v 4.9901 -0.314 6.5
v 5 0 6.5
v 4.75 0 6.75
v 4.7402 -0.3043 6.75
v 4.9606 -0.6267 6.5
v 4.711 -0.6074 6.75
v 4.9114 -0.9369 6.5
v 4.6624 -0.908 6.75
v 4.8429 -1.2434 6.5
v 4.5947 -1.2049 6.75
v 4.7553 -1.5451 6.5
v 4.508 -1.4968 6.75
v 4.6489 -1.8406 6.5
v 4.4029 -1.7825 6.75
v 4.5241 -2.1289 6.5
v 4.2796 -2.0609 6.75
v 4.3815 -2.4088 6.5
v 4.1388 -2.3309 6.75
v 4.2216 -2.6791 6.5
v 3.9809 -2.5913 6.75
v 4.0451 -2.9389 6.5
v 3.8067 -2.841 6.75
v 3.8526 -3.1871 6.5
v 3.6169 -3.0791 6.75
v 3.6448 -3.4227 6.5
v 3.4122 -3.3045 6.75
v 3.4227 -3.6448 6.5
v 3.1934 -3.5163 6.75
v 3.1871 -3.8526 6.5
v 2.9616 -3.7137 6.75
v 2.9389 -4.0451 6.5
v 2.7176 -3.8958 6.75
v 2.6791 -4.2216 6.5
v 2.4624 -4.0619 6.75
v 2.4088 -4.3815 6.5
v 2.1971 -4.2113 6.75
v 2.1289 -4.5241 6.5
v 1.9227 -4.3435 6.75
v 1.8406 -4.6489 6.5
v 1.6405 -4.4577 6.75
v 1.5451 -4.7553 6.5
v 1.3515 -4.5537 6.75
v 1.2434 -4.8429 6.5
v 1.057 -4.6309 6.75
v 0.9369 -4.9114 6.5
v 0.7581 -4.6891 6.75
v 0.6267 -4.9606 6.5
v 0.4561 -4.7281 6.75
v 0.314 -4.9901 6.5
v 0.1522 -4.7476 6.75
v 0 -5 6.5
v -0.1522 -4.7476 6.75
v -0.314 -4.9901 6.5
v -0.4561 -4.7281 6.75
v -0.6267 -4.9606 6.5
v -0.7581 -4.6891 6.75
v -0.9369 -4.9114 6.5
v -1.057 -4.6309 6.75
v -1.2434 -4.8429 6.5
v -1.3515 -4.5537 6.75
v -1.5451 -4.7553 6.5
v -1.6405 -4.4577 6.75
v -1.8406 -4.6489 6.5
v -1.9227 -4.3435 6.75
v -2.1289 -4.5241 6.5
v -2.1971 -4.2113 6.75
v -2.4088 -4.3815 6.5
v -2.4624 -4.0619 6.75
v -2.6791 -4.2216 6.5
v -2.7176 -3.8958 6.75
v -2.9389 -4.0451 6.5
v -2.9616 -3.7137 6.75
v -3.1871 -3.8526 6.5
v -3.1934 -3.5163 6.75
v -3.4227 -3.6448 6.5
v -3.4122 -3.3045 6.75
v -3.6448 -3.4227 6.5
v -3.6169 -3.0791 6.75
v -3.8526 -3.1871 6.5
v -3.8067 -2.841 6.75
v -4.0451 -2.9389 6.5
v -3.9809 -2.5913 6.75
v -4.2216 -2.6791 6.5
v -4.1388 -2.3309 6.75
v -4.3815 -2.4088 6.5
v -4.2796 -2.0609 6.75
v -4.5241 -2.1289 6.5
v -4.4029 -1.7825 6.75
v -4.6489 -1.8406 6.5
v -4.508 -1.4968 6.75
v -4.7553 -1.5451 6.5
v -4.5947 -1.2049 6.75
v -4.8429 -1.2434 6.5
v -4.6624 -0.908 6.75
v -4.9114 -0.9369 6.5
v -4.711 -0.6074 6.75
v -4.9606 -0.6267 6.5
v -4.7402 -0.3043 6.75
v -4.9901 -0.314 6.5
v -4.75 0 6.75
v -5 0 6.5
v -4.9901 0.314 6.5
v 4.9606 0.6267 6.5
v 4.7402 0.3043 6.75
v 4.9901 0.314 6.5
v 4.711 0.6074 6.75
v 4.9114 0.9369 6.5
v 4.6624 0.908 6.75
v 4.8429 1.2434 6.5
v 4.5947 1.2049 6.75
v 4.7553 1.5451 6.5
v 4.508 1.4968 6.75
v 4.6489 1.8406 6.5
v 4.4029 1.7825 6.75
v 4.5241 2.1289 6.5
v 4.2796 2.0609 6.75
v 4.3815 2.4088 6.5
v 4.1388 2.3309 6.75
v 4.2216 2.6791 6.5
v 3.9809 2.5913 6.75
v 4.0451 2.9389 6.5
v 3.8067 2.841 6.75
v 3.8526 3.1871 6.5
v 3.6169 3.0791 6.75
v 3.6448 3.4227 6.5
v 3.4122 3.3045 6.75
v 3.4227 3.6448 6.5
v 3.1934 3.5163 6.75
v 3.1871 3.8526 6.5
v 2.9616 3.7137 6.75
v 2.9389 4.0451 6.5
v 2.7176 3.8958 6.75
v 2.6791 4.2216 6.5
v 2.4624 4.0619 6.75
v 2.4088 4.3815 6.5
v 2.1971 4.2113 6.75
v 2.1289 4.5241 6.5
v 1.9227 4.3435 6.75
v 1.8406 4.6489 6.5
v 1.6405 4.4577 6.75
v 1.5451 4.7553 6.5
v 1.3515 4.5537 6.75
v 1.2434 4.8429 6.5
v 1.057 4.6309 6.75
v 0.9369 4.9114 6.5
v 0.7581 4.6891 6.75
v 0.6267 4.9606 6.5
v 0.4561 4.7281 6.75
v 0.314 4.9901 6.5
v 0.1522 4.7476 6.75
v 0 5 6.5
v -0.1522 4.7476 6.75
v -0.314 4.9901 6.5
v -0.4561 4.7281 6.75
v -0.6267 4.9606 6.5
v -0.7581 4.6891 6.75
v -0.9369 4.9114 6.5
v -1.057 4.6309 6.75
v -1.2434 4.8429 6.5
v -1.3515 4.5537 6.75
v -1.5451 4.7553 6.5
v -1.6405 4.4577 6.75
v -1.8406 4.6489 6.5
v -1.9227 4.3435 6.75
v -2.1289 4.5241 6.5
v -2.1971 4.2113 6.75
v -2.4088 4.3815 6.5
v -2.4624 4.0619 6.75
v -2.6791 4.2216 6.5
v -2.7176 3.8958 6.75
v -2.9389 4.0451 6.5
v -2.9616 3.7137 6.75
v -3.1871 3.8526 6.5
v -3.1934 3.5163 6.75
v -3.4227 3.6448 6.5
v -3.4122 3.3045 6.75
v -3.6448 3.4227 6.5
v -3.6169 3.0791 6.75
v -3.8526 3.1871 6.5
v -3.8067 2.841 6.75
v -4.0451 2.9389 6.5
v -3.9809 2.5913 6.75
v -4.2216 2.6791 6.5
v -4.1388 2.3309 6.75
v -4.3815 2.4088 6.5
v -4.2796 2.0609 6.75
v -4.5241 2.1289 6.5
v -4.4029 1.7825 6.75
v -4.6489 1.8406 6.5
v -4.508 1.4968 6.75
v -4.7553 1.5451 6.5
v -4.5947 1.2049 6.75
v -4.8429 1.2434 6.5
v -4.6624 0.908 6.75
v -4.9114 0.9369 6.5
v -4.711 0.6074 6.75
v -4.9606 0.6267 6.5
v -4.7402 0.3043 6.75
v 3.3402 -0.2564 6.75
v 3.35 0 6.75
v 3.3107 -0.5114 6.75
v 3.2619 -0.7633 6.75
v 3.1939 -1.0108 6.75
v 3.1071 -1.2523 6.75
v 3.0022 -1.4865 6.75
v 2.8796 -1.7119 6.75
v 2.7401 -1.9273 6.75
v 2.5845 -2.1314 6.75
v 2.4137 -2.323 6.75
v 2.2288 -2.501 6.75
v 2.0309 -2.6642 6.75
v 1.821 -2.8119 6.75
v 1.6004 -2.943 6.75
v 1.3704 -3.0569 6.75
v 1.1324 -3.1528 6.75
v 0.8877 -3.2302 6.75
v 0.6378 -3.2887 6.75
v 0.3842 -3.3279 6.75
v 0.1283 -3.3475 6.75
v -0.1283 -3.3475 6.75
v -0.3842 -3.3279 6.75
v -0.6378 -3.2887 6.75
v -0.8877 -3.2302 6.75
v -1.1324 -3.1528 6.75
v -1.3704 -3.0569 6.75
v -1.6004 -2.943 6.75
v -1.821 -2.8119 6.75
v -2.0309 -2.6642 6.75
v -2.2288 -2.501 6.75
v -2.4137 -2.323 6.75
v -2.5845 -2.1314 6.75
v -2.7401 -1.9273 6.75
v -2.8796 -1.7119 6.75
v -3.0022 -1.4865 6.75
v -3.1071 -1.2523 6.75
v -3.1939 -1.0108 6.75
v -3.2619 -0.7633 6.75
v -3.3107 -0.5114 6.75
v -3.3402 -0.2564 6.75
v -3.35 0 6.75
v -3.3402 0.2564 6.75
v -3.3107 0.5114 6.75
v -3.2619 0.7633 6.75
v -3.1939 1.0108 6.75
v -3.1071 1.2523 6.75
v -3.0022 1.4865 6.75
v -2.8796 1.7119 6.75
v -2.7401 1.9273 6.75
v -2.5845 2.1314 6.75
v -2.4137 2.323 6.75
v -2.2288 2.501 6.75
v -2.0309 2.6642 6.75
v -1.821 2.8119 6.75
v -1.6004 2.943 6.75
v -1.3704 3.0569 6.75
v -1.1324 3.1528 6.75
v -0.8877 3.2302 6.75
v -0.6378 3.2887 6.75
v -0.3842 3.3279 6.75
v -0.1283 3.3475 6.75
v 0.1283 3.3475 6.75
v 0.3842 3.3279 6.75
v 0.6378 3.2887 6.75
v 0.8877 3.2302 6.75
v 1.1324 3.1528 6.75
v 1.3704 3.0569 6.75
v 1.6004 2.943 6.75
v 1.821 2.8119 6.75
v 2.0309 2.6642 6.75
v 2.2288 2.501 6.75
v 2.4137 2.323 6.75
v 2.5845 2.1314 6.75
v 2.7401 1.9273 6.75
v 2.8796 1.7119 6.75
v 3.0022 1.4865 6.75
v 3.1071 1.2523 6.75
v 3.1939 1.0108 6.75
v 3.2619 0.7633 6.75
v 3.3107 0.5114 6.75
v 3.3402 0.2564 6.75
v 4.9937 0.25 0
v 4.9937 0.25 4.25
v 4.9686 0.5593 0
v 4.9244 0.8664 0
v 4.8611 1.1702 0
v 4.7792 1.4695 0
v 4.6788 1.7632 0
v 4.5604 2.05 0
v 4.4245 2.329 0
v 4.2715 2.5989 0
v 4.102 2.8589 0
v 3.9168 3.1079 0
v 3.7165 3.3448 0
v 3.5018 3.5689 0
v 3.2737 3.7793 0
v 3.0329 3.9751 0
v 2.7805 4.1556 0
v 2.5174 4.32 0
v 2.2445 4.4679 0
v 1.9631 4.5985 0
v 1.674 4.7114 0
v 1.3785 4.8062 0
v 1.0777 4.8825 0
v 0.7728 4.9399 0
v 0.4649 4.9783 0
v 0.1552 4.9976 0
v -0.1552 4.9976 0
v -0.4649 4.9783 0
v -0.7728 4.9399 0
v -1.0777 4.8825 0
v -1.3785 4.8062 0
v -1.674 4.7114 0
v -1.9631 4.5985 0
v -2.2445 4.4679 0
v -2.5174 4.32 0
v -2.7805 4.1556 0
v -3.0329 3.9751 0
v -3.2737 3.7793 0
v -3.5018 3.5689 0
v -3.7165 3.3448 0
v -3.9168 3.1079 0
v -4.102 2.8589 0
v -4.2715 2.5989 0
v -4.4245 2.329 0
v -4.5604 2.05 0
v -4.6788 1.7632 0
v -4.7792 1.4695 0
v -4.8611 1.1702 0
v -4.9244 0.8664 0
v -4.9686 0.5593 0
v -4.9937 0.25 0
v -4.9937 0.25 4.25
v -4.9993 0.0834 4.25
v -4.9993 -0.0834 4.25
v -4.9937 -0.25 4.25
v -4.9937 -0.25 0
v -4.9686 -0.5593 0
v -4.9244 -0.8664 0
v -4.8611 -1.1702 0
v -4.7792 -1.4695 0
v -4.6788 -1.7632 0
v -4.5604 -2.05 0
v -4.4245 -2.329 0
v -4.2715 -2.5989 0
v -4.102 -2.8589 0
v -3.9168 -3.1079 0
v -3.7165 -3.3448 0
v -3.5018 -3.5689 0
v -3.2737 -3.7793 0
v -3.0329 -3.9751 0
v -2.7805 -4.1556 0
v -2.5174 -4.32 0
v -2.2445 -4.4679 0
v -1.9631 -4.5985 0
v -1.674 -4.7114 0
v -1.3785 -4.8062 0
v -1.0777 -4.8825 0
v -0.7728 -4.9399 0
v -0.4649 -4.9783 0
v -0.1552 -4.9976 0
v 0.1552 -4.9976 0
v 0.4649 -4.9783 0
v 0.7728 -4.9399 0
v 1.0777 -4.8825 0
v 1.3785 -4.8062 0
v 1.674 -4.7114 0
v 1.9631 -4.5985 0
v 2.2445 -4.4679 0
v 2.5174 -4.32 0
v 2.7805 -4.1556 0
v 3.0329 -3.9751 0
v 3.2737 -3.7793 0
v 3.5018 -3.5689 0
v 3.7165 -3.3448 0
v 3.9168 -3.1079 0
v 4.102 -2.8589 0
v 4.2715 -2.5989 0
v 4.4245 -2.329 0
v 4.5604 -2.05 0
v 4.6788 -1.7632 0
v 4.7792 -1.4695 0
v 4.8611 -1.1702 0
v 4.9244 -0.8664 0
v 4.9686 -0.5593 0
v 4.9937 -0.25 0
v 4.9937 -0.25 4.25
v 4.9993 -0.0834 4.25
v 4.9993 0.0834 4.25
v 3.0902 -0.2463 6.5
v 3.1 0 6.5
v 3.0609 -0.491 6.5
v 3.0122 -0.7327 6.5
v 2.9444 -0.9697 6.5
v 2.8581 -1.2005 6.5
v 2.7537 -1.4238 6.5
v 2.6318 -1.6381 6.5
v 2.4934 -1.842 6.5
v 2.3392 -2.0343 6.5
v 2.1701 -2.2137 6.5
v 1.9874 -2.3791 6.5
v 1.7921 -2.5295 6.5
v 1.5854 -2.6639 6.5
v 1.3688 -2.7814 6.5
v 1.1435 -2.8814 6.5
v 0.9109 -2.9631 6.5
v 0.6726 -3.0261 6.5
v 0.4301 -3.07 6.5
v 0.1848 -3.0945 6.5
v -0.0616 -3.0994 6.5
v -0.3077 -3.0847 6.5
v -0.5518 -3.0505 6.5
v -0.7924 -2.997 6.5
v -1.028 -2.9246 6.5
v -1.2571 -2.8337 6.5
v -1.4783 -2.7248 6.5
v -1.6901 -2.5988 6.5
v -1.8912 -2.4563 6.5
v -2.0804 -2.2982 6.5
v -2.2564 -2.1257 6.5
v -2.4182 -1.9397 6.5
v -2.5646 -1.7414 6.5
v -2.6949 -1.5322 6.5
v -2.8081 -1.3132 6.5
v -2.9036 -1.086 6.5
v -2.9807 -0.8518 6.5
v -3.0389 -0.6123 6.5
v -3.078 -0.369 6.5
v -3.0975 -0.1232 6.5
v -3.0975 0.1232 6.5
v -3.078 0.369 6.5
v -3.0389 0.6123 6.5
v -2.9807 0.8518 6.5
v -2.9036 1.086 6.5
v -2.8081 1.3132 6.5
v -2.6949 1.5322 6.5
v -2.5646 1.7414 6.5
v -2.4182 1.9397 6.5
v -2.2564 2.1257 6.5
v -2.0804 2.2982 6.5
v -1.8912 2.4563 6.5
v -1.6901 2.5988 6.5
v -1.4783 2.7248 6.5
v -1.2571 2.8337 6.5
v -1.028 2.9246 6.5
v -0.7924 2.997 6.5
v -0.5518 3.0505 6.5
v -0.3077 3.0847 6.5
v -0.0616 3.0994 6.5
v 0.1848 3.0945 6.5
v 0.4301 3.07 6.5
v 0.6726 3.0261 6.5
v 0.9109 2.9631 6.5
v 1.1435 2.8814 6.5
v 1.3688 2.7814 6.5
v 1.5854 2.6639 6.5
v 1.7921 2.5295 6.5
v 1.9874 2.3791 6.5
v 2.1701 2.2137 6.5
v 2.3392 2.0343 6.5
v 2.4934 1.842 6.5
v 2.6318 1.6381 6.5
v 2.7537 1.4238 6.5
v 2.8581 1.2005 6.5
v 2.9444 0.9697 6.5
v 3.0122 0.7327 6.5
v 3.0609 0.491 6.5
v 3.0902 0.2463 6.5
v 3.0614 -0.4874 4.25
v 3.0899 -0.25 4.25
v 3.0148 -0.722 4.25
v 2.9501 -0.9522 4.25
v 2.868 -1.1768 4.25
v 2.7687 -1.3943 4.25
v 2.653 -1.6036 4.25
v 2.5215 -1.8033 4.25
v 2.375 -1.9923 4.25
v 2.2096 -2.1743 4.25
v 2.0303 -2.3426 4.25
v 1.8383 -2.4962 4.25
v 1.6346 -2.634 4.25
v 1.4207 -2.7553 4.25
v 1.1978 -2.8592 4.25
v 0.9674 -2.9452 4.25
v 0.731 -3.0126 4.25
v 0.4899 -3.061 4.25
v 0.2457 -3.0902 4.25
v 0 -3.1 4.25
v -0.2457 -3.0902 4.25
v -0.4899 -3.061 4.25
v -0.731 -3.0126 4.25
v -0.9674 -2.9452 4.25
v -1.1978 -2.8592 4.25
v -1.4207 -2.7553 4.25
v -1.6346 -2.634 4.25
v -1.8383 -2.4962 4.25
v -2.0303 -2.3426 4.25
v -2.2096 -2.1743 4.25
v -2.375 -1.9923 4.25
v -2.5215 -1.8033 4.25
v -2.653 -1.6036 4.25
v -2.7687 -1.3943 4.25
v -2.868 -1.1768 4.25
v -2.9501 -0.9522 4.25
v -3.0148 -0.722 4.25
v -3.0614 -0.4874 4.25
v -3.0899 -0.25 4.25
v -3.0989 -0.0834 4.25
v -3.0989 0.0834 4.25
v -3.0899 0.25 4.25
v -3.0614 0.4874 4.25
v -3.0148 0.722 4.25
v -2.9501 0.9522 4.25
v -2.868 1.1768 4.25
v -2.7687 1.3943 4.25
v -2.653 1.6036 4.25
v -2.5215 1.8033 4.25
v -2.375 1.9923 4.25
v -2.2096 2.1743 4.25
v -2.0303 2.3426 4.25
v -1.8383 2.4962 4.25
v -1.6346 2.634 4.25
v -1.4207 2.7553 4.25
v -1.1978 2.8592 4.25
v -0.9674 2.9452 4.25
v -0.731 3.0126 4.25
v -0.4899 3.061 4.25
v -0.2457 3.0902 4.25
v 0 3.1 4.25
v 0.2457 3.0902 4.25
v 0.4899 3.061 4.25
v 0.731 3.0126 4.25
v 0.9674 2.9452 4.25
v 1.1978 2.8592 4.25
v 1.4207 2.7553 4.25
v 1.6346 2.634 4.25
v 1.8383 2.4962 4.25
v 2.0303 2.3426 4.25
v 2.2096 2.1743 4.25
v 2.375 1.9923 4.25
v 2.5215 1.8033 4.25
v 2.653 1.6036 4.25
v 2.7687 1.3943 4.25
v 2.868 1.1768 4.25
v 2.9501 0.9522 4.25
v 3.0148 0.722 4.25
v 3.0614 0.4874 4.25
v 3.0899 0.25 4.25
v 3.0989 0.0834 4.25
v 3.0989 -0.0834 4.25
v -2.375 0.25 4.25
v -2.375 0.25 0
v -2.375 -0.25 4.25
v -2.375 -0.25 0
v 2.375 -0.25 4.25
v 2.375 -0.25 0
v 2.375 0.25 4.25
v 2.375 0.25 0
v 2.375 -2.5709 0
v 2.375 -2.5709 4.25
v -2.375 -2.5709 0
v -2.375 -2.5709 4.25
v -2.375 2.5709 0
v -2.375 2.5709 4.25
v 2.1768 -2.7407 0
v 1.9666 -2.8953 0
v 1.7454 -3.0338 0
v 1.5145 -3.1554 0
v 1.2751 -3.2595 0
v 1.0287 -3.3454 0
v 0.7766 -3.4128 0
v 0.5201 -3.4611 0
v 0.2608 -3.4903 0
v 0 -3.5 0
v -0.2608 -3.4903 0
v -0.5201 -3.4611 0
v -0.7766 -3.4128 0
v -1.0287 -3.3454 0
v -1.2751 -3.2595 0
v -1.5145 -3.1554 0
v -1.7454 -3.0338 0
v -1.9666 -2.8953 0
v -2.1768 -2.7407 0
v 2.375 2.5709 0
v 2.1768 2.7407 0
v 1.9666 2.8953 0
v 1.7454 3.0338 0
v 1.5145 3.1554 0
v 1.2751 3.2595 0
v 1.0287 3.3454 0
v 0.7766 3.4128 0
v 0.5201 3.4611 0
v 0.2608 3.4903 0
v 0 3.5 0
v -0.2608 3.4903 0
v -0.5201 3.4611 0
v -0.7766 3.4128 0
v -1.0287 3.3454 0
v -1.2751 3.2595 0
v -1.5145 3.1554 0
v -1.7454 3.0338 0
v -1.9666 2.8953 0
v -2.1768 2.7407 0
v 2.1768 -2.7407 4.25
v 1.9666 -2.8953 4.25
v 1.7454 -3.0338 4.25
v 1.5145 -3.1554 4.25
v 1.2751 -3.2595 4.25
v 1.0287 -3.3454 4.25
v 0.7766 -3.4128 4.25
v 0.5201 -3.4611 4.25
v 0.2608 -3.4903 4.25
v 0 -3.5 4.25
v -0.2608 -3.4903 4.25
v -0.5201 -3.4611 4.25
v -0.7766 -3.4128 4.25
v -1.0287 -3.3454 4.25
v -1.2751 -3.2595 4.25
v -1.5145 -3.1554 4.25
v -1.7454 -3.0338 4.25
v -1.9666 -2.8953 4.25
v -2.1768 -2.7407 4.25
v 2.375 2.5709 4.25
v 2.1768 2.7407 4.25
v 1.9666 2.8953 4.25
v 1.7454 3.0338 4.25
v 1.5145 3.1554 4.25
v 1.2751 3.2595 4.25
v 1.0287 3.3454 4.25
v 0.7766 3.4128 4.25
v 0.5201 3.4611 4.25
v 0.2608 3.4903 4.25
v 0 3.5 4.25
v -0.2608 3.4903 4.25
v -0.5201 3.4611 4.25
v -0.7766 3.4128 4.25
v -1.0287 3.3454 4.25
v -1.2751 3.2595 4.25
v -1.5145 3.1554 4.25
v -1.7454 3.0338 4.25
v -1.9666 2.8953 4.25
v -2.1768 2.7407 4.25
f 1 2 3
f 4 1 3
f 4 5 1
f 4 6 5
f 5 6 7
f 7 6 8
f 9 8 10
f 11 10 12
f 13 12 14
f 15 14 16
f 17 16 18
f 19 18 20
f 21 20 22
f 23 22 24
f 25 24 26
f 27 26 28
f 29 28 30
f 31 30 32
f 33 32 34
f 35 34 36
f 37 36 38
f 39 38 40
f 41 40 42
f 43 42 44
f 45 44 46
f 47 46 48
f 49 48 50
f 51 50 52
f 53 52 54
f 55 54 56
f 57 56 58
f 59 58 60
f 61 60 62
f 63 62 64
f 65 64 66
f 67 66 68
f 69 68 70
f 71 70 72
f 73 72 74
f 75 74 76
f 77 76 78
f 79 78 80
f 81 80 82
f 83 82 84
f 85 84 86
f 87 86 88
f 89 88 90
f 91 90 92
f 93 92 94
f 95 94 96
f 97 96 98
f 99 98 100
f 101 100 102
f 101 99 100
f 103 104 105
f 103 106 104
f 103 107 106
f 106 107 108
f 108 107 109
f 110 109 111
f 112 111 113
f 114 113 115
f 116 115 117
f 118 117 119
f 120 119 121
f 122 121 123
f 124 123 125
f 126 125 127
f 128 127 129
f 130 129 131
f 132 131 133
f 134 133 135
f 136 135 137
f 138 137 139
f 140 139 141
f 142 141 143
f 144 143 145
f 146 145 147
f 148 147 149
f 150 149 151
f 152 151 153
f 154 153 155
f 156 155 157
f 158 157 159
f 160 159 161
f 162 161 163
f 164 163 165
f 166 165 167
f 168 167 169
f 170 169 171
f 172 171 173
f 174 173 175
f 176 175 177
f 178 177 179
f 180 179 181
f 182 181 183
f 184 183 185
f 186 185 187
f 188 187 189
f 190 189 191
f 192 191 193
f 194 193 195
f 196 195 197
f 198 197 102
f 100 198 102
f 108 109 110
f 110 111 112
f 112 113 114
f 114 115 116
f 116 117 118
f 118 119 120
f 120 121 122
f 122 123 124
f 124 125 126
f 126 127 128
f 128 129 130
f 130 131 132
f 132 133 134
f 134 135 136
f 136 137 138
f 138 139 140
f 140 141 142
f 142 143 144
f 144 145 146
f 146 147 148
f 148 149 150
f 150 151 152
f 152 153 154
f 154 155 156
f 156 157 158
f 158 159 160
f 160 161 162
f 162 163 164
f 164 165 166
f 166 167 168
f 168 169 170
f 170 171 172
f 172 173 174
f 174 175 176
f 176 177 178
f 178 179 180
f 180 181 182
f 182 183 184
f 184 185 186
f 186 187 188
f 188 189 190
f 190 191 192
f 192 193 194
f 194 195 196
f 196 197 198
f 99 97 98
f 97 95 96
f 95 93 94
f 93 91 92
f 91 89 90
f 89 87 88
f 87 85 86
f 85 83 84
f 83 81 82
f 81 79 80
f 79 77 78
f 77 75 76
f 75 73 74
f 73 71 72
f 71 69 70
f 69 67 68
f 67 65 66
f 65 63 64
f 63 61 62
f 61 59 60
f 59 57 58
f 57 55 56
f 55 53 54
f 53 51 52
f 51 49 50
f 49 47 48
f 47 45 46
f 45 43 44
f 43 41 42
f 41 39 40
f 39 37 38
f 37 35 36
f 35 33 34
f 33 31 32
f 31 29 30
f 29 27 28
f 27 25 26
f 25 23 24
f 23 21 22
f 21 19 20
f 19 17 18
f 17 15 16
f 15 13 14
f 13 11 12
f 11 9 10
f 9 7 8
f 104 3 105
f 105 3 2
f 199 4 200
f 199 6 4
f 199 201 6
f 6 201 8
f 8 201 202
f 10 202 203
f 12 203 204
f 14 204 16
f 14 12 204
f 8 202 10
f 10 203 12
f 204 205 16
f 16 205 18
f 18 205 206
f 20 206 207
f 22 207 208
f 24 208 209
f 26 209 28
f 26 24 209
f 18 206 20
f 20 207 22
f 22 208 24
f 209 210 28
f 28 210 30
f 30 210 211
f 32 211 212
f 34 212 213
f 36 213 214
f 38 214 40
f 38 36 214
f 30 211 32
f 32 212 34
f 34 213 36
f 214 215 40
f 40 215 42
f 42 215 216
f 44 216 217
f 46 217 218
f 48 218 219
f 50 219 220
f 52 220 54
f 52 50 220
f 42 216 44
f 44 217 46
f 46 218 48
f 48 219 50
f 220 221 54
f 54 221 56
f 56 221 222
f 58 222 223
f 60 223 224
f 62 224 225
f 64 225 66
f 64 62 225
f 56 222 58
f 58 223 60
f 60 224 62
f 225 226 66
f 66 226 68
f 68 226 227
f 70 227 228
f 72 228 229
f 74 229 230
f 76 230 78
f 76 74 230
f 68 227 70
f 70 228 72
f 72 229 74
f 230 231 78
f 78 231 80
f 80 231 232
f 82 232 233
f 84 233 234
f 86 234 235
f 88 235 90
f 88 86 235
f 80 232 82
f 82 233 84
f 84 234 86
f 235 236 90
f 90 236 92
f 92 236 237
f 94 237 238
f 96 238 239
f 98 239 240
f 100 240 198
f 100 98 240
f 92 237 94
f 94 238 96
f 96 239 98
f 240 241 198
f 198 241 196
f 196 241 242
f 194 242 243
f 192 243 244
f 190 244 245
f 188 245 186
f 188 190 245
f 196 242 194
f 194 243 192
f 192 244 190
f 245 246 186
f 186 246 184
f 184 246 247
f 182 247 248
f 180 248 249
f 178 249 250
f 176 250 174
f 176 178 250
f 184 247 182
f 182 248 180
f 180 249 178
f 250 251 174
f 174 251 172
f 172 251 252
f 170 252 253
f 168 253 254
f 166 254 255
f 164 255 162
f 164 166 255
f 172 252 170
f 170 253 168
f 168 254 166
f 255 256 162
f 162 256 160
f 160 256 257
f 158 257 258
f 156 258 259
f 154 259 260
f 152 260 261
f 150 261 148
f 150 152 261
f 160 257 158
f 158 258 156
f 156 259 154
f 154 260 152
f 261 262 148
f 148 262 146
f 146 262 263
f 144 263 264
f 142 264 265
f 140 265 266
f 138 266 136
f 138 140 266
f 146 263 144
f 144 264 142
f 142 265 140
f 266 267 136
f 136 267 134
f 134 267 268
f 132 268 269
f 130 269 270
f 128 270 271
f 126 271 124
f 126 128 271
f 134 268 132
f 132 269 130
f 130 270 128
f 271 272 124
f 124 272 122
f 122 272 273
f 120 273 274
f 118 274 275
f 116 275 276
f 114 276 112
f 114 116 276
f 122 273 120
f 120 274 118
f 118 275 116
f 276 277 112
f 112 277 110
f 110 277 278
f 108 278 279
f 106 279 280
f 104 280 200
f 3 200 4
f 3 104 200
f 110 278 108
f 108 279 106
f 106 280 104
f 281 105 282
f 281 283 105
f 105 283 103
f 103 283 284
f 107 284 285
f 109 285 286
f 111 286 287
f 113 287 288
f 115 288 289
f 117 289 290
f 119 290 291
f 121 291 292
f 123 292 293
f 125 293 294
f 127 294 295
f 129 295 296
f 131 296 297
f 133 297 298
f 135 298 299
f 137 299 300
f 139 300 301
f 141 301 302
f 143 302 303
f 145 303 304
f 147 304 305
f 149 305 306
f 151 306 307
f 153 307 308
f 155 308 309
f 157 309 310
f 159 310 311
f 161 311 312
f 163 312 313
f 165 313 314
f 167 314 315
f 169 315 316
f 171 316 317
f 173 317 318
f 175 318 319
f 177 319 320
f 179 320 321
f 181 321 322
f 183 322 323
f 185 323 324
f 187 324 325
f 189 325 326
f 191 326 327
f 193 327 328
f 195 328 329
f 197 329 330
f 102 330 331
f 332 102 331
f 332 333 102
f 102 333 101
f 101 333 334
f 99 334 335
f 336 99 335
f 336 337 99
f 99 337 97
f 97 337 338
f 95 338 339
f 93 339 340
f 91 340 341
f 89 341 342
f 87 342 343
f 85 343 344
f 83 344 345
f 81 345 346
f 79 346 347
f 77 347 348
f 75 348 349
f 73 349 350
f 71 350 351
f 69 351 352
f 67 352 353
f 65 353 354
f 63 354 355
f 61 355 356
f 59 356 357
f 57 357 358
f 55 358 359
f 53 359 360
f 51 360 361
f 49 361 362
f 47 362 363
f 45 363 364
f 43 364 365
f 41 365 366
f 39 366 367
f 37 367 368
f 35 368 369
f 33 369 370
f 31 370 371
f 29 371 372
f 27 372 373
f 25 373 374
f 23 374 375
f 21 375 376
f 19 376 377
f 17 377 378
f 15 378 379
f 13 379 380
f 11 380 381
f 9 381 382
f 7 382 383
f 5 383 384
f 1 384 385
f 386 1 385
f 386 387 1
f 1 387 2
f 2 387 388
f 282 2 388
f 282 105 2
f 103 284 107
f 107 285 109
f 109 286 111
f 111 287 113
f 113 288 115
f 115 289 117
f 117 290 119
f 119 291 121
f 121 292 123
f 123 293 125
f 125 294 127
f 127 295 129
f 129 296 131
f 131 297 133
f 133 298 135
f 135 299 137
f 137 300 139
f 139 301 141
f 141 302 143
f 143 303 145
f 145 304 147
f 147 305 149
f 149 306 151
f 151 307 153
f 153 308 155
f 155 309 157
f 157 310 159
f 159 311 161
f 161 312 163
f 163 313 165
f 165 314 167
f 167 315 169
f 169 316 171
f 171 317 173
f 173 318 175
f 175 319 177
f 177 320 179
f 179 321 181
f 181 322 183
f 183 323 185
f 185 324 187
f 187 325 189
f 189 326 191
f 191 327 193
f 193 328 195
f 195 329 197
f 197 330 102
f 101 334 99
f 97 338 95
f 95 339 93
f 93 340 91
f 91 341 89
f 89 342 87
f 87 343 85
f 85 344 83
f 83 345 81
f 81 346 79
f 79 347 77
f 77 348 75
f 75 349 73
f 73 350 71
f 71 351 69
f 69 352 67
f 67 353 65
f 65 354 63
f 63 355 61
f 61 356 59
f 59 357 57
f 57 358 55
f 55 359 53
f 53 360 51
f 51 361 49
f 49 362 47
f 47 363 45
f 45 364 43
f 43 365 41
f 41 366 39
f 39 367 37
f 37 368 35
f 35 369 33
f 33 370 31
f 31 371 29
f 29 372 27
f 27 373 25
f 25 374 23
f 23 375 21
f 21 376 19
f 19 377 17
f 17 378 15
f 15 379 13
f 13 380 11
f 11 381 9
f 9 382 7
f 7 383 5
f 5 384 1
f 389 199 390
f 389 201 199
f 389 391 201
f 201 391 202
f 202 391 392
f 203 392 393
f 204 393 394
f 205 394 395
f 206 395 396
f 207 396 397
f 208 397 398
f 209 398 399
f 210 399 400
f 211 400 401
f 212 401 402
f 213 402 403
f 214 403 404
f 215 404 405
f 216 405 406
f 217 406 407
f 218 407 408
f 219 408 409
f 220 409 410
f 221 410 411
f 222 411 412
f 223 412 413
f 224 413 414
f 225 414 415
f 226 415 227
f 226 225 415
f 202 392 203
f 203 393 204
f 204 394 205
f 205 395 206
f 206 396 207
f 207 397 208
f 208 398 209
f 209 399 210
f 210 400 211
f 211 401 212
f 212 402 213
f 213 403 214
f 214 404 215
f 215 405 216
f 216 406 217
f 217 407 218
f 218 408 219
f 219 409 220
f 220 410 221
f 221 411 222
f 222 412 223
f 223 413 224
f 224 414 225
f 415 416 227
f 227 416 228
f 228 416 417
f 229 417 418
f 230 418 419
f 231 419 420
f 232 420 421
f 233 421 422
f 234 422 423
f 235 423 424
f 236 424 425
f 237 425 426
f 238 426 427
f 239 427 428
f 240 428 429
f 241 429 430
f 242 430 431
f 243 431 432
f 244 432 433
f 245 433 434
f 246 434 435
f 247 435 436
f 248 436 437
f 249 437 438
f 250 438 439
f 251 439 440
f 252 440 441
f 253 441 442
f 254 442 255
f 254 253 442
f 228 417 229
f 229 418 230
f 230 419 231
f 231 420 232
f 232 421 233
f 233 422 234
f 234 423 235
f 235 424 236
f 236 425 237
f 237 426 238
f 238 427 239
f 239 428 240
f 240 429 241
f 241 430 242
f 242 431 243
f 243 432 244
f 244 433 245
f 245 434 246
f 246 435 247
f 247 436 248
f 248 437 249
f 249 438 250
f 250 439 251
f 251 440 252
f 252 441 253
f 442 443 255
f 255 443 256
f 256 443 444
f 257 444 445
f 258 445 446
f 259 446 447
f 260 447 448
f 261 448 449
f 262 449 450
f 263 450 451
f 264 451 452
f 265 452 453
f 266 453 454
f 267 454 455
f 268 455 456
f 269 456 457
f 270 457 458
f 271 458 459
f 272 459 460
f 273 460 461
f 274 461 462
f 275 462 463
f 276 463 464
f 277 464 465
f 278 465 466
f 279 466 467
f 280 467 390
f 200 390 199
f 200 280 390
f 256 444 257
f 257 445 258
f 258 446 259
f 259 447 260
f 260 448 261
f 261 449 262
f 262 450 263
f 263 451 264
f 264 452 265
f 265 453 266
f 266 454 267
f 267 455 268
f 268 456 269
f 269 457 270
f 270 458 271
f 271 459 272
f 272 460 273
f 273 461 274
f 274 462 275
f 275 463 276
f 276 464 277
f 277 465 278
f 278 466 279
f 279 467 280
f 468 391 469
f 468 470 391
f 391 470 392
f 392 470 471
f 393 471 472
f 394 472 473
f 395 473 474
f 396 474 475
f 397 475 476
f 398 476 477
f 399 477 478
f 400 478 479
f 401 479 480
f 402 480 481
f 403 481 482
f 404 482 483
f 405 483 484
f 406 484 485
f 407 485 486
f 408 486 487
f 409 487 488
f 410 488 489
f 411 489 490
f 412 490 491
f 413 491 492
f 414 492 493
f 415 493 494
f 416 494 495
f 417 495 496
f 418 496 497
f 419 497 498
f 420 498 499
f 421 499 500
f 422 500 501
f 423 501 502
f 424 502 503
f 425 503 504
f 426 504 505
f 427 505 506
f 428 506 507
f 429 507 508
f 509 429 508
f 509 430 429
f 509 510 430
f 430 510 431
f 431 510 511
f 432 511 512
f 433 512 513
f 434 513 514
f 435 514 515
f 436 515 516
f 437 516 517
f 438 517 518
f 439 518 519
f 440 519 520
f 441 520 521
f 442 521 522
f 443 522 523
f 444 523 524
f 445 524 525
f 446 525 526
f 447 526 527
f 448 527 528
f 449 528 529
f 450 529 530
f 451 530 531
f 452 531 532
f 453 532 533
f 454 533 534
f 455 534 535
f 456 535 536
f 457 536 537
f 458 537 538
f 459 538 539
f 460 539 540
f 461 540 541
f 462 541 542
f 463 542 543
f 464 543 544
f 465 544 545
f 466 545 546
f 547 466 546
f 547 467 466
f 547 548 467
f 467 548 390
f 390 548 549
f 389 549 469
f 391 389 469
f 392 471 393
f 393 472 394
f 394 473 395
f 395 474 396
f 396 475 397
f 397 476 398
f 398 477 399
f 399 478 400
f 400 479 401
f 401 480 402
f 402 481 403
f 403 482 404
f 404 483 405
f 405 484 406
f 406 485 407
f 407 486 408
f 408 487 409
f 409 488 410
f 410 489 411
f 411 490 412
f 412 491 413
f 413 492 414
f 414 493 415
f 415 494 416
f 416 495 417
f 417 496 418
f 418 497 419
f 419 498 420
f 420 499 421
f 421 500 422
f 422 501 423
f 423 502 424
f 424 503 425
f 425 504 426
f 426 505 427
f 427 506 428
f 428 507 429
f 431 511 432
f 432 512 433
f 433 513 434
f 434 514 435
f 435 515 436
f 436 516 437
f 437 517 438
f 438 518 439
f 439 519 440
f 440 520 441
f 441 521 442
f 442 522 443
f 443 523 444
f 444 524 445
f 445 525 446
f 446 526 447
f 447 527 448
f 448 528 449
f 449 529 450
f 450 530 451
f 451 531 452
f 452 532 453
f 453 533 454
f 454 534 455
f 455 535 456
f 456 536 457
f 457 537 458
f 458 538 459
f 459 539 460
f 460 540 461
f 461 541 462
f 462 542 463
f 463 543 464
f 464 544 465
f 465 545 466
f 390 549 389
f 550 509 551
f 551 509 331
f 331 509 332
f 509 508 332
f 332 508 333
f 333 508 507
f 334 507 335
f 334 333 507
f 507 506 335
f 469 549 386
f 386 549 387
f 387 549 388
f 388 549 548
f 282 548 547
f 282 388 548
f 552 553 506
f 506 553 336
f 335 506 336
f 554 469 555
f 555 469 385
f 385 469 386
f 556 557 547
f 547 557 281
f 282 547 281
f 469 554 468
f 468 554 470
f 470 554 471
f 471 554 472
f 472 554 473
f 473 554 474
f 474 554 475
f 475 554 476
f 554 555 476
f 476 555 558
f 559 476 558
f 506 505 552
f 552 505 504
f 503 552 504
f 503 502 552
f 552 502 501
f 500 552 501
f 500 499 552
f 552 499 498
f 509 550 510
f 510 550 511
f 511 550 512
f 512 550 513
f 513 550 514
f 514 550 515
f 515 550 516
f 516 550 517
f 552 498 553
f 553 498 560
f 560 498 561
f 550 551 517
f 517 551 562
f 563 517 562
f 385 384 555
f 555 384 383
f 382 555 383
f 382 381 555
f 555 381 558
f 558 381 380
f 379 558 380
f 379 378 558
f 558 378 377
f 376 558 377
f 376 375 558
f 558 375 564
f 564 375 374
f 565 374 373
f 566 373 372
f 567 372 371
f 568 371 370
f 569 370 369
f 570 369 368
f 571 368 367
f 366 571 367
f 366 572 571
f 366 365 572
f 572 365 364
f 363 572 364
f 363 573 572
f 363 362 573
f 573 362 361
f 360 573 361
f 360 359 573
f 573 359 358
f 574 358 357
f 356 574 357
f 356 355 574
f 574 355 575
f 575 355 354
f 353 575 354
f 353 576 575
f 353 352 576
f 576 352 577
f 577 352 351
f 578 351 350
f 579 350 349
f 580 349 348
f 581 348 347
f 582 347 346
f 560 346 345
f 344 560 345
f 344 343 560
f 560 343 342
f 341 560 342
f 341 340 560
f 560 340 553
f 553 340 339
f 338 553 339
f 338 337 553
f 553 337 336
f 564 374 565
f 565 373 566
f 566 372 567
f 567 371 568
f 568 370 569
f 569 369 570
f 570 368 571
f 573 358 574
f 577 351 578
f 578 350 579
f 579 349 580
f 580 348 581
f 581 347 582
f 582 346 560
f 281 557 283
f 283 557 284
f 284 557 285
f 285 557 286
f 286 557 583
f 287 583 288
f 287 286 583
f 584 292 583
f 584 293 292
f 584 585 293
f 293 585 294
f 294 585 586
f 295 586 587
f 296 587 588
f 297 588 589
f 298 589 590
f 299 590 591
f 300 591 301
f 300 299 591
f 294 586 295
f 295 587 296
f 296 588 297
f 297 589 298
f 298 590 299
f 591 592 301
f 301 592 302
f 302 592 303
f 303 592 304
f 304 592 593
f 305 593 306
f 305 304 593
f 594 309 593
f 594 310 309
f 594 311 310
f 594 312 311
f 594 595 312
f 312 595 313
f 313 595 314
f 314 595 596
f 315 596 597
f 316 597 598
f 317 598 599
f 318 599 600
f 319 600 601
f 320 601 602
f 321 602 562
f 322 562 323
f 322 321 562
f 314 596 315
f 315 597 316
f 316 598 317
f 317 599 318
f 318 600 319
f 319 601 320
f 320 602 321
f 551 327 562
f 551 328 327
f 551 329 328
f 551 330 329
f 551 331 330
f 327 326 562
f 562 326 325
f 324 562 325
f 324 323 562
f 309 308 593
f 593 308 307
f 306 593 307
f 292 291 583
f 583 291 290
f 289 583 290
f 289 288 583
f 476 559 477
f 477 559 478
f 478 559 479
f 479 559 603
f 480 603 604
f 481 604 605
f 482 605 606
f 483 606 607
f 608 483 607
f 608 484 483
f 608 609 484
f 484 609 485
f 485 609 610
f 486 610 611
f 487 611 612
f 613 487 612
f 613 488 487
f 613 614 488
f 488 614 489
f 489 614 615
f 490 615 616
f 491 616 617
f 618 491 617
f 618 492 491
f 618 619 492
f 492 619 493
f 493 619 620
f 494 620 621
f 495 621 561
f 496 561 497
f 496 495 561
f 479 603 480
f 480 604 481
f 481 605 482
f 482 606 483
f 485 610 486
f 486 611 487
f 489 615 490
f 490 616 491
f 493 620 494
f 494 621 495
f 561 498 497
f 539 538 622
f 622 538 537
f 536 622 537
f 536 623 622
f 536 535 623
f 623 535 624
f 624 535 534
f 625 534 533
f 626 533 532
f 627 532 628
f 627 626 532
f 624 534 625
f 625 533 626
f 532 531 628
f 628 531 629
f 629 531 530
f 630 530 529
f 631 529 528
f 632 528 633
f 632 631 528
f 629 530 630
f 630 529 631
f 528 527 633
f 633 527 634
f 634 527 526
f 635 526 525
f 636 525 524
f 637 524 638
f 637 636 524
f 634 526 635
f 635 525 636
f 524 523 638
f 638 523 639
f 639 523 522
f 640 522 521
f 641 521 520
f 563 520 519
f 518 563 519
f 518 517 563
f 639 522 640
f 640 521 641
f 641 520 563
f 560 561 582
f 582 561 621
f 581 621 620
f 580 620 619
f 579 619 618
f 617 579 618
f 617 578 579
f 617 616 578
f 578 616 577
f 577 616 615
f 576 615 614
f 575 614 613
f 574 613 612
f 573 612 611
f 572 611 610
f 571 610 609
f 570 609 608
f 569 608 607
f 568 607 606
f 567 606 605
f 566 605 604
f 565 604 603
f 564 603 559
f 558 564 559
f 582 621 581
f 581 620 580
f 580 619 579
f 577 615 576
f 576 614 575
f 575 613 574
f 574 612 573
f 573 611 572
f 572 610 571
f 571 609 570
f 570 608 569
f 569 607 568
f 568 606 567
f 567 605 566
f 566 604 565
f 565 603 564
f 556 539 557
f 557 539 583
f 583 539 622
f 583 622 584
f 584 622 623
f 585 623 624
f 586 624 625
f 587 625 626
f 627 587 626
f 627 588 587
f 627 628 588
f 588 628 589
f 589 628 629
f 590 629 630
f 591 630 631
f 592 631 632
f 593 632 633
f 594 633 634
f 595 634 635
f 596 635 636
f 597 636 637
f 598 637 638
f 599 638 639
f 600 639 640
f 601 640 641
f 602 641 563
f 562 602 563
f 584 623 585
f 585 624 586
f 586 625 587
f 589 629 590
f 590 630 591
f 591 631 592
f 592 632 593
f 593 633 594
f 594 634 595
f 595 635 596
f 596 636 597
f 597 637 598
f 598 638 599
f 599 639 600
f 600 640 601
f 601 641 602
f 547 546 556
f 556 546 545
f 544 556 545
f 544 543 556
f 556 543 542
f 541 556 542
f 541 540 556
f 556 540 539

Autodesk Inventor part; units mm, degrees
ref_plane "YZ Plane" through (0, 0, 0) normal (1, 0, 0) x (0, 1, 0)
ref_plane "XZ Plane" through (0, 0, 0) normal (0, 1, 0) x (-1, 0, 0)
sketch "Sketch1" plane through (0, 0, 0) normal (0, 0, 1) x (1, 0, 0)
  line L0 (-2.375, 2.5709) -> (-2.375, -2.5709) projected
  arc A0 (-2.375, -2.5709) -> (2.375, -2.5709) centre (0, 0) ccw projected
  line L1 (2.375, -2.5709) -> (2.375, 2.5709) projected
  arc A1 (2.375, 2.5709) -> (-2.375, 2.5709) centre (0, 0) ccw projected
  circle A2 centre (0, 0) radius 0.875 projected
  circle A3 centre (0, 0) radius 5
  dimension "d0" = 10
ref_plane "Work Plane1" through (-2.375, -3.5, 4.25) normal (0, 0, 1) x (1, 0, 0)
extrude "Extrusion1" add sketch "Sketch1" along normal up to surface (4.25 mm away) contours A3
sketch "Sketch2" plane through (0, 0, 4.25) normal (0, 0, 1) x (1, 0, 0)
  circle A0 centre (0, 0) radius 3.1
  circle A1 centre (0, 0) radius 5 projected
  dimension "d3" = 6.2
extrude "Extrusion2" add sketch "Sketch2" along normal blind 2.5
sketch "Sketch3" plane through (0, 0, 0) normal (0, 0, -1) x (-1, 0, 0)
  line L0 (-5.064, 0) -> (5.064, 0) construction
  line L1 (-5.064, -0.25) -> (5.064, -0.25)
  line L2 (5.064, 0.25) -> (-5.064, 0.25)
  arc A0 (-5.064, 0.25) -> (-5.064, -0.25) centre (-5.064, 0) ccw
  arc A1 (5.064, -0.25) -> (5.064, 0.25) centre (5.064, 0) ccw
  point P0 (0, 0)
  dimension "d6" = 0.5
extrude "Extrusion3" cut sketch "Sketch3" against normal blind 4.25
chamfer "Chamfer1" distance 0.25 angle 45 2 edges at (-3.1, 0, 6.75) (-5, 0, 6.75)
properties part number "MagnetHolder"
